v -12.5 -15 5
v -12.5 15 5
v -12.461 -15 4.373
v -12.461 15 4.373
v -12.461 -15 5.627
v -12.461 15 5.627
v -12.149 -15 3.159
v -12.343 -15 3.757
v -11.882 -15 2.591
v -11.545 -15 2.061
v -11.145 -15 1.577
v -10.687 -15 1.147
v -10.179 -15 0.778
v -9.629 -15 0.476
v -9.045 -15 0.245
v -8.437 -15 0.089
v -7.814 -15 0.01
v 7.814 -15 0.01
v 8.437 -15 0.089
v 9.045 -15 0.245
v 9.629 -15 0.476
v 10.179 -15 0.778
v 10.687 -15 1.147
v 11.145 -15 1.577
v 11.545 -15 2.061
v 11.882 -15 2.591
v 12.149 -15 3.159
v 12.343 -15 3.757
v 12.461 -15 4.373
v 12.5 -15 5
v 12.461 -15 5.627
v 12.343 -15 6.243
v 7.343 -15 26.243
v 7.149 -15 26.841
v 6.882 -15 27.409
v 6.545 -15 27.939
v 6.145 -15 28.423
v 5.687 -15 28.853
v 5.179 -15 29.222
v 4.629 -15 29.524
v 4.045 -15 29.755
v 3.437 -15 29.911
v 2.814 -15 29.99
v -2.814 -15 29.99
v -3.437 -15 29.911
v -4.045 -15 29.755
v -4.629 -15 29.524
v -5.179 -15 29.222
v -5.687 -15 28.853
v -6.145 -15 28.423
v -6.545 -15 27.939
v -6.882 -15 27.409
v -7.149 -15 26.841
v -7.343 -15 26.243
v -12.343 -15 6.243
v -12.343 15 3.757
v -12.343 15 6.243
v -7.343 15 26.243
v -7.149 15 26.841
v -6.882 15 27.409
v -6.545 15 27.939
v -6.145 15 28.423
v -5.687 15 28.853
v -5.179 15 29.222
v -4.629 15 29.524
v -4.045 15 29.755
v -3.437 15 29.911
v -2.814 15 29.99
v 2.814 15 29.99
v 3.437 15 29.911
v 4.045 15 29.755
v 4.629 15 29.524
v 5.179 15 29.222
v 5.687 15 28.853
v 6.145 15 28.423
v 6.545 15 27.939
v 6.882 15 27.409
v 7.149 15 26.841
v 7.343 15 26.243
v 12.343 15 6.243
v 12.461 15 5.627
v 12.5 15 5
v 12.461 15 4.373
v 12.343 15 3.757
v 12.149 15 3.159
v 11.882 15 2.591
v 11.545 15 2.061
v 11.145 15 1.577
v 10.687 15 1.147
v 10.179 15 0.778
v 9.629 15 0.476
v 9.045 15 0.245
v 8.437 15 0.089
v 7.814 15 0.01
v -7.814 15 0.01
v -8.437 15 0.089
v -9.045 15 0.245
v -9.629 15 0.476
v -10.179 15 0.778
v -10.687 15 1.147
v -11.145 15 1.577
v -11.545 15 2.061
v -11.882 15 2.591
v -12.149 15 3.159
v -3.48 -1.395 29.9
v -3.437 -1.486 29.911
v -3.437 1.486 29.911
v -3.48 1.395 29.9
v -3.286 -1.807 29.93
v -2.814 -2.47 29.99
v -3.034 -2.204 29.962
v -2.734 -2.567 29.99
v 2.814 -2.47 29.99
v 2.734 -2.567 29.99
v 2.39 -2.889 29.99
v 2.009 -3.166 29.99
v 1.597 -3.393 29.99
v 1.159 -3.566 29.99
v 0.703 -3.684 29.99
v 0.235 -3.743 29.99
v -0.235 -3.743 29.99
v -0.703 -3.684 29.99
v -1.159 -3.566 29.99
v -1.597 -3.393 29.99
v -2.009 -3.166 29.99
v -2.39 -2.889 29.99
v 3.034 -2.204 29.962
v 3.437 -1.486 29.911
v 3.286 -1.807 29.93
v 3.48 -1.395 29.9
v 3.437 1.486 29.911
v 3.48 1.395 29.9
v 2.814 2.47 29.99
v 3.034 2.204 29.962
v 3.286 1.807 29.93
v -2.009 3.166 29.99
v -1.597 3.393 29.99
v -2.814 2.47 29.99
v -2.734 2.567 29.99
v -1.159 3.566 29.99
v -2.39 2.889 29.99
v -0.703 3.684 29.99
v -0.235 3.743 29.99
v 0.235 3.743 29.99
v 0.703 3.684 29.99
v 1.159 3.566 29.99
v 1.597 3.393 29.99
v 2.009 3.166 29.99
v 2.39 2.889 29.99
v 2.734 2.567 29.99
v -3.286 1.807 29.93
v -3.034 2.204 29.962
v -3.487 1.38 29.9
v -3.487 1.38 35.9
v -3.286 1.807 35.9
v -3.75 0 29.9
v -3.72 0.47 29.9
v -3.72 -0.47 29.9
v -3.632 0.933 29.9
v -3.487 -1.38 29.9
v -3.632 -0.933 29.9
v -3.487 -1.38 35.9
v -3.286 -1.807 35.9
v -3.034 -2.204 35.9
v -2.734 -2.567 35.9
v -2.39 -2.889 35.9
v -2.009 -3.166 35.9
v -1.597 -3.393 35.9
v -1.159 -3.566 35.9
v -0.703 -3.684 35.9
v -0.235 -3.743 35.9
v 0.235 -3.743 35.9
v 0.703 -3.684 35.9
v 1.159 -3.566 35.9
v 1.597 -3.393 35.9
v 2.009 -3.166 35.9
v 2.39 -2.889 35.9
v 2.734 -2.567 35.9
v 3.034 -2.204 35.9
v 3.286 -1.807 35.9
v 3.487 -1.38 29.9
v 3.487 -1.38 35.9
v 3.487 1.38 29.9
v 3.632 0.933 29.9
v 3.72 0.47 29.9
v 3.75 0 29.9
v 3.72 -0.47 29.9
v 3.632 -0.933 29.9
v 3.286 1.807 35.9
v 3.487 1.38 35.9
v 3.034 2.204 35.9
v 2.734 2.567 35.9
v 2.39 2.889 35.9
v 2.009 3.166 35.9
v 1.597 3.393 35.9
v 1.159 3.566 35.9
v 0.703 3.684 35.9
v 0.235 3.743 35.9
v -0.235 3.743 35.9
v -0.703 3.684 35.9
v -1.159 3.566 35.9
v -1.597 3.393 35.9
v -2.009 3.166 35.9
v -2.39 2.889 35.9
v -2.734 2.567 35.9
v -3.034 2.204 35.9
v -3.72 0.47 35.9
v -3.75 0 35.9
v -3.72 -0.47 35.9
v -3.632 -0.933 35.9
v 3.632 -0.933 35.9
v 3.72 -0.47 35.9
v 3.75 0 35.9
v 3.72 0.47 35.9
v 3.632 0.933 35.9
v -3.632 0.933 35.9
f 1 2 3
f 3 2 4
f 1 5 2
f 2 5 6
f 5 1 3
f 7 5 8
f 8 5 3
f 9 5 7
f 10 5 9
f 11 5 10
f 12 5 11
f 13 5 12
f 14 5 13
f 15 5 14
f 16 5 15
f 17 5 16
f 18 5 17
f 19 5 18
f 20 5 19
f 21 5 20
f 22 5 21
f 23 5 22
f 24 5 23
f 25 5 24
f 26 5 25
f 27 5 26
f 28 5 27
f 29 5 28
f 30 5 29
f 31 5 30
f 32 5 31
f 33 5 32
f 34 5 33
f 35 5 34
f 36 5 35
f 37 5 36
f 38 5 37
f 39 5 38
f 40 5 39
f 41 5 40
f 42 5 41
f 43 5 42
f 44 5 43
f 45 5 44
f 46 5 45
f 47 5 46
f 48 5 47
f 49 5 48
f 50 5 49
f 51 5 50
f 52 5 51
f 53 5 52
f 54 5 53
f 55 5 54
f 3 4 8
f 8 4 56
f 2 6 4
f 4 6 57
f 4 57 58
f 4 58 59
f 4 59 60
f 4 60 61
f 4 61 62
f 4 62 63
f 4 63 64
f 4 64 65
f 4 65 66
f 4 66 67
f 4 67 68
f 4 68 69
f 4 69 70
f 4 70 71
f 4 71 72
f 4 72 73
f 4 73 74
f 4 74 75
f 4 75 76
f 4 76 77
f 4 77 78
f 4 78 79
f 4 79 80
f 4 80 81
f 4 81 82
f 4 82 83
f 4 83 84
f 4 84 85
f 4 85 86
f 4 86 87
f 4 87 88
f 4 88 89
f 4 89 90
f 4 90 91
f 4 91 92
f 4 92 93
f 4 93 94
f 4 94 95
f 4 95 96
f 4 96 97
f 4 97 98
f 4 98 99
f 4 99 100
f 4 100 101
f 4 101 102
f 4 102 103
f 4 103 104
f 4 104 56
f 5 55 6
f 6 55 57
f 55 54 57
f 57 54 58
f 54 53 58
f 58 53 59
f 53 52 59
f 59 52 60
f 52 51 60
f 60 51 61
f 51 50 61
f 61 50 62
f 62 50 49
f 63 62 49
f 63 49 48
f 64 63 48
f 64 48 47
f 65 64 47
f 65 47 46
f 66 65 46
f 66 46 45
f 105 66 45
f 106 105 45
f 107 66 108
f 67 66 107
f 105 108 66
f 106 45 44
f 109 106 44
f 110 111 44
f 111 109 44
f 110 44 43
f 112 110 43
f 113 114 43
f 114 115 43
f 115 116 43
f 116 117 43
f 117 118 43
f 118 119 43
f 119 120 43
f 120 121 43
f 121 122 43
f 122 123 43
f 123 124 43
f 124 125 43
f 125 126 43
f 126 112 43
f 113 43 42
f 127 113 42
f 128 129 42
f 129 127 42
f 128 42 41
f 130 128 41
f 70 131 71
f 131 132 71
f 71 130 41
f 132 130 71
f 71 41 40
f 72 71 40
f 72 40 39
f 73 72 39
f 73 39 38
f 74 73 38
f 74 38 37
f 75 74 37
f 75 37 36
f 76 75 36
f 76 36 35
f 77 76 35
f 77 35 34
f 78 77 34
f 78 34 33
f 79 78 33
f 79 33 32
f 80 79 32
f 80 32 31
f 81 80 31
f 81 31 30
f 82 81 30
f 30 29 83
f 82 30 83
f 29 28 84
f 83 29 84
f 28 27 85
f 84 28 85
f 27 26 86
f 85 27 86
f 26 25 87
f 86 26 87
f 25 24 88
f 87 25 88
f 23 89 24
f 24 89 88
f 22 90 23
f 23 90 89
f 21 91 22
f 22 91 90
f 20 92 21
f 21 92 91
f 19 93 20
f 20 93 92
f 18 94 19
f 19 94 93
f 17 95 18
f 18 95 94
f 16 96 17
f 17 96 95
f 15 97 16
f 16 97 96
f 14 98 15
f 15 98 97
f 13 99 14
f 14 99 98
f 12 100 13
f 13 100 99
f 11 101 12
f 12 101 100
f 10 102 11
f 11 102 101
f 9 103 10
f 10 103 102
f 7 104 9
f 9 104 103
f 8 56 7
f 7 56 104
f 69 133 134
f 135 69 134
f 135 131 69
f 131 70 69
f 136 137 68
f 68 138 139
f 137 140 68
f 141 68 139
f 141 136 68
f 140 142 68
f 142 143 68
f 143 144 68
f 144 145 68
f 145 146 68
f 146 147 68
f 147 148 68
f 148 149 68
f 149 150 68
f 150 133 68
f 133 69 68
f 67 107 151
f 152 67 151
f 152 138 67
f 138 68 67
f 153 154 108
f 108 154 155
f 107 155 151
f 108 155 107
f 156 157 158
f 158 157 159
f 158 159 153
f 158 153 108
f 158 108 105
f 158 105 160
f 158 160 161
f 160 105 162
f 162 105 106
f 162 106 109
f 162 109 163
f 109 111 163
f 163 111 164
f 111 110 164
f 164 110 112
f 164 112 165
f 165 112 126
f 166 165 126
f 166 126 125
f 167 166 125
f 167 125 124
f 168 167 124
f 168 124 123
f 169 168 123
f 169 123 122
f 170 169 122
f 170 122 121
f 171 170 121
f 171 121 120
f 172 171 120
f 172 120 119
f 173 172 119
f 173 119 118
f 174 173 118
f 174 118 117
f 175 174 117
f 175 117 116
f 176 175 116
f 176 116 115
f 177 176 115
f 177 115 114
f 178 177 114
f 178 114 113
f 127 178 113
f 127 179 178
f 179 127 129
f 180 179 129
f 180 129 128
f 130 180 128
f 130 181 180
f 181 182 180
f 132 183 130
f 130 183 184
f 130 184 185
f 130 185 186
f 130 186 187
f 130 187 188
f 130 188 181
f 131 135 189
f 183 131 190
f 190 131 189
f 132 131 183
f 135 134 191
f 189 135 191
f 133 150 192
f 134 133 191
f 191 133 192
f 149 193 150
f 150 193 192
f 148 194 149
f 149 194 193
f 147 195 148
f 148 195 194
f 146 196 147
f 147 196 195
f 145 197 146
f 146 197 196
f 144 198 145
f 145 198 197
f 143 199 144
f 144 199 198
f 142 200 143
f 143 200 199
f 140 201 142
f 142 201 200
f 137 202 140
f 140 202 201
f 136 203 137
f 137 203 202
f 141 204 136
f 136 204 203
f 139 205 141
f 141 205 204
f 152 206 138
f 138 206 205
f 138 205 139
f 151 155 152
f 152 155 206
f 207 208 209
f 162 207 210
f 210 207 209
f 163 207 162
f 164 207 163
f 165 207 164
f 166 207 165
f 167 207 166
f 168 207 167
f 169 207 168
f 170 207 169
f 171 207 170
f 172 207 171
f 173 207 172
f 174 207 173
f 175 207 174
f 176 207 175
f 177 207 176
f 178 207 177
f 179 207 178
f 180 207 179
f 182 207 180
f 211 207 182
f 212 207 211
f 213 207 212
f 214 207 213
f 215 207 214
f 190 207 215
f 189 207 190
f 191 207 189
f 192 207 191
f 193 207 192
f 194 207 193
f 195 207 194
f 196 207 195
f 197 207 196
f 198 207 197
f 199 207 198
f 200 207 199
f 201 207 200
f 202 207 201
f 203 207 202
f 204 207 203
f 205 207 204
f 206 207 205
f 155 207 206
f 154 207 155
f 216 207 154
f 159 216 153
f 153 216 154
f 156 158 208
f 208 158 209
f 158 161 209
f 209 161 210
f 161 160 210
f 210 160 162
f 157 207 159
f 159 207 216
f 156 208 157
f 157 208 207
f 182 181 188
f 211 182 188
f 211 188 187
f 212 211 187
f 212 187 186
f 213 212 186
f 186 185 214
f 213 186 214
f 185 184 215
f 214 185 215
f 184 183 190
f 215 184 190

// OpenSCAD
// file: config.scad
/* Author: Antonio Navarro
 * License: LGPLv2.1
 * 
 *
 *
 *
 * Configuration file
 */
$fn=50;

/****** Slider parameters *****/
slider_height=30;
slider_lenght=30;
top_width=15;
down_width=25;
rad_round=5;
slider_axe=top_width/2;

/****** base parameters *****/
base_lenght=100;
base_thickness=3;
base_rad=10;
base_height=slider_height;

/****** arm parameters *****/
arm_thickness=3;
arm_lenght=base_lenght;
arm_width=top_width;
// main file
/* Author: Antonio Navarro
 * License: LGPLv2.1
 * 
 *
 *
 *
 *
 *
 *
 *
 */
include <config.scad>

module slider(lenght=slider_lenght, margin=0){

	x1=(top_width/2)-rad_round+margin;
	x2=(down_width/2)-rad_round+margin;
	y=(slider_height/2)-rad_round;
	z=0;

	base = [
		[x1,y,z],
		[x2,-y,z],
		[-x1,y,z],
		[-x2,-y,z]
	];

	translate([0,0,slider_height/2])
		rotate([90,0,0])
			linear_extrude(height=lenght, center=true){
				hull(){
					for(i = [0:3])
						translate(base[i])
							circle(r=rad_round);
				}
			}
	translate([0,0,slider_height-0.1])
		cylinder(d=slider_axe,h=arm_thickness*2);

}

slider();
